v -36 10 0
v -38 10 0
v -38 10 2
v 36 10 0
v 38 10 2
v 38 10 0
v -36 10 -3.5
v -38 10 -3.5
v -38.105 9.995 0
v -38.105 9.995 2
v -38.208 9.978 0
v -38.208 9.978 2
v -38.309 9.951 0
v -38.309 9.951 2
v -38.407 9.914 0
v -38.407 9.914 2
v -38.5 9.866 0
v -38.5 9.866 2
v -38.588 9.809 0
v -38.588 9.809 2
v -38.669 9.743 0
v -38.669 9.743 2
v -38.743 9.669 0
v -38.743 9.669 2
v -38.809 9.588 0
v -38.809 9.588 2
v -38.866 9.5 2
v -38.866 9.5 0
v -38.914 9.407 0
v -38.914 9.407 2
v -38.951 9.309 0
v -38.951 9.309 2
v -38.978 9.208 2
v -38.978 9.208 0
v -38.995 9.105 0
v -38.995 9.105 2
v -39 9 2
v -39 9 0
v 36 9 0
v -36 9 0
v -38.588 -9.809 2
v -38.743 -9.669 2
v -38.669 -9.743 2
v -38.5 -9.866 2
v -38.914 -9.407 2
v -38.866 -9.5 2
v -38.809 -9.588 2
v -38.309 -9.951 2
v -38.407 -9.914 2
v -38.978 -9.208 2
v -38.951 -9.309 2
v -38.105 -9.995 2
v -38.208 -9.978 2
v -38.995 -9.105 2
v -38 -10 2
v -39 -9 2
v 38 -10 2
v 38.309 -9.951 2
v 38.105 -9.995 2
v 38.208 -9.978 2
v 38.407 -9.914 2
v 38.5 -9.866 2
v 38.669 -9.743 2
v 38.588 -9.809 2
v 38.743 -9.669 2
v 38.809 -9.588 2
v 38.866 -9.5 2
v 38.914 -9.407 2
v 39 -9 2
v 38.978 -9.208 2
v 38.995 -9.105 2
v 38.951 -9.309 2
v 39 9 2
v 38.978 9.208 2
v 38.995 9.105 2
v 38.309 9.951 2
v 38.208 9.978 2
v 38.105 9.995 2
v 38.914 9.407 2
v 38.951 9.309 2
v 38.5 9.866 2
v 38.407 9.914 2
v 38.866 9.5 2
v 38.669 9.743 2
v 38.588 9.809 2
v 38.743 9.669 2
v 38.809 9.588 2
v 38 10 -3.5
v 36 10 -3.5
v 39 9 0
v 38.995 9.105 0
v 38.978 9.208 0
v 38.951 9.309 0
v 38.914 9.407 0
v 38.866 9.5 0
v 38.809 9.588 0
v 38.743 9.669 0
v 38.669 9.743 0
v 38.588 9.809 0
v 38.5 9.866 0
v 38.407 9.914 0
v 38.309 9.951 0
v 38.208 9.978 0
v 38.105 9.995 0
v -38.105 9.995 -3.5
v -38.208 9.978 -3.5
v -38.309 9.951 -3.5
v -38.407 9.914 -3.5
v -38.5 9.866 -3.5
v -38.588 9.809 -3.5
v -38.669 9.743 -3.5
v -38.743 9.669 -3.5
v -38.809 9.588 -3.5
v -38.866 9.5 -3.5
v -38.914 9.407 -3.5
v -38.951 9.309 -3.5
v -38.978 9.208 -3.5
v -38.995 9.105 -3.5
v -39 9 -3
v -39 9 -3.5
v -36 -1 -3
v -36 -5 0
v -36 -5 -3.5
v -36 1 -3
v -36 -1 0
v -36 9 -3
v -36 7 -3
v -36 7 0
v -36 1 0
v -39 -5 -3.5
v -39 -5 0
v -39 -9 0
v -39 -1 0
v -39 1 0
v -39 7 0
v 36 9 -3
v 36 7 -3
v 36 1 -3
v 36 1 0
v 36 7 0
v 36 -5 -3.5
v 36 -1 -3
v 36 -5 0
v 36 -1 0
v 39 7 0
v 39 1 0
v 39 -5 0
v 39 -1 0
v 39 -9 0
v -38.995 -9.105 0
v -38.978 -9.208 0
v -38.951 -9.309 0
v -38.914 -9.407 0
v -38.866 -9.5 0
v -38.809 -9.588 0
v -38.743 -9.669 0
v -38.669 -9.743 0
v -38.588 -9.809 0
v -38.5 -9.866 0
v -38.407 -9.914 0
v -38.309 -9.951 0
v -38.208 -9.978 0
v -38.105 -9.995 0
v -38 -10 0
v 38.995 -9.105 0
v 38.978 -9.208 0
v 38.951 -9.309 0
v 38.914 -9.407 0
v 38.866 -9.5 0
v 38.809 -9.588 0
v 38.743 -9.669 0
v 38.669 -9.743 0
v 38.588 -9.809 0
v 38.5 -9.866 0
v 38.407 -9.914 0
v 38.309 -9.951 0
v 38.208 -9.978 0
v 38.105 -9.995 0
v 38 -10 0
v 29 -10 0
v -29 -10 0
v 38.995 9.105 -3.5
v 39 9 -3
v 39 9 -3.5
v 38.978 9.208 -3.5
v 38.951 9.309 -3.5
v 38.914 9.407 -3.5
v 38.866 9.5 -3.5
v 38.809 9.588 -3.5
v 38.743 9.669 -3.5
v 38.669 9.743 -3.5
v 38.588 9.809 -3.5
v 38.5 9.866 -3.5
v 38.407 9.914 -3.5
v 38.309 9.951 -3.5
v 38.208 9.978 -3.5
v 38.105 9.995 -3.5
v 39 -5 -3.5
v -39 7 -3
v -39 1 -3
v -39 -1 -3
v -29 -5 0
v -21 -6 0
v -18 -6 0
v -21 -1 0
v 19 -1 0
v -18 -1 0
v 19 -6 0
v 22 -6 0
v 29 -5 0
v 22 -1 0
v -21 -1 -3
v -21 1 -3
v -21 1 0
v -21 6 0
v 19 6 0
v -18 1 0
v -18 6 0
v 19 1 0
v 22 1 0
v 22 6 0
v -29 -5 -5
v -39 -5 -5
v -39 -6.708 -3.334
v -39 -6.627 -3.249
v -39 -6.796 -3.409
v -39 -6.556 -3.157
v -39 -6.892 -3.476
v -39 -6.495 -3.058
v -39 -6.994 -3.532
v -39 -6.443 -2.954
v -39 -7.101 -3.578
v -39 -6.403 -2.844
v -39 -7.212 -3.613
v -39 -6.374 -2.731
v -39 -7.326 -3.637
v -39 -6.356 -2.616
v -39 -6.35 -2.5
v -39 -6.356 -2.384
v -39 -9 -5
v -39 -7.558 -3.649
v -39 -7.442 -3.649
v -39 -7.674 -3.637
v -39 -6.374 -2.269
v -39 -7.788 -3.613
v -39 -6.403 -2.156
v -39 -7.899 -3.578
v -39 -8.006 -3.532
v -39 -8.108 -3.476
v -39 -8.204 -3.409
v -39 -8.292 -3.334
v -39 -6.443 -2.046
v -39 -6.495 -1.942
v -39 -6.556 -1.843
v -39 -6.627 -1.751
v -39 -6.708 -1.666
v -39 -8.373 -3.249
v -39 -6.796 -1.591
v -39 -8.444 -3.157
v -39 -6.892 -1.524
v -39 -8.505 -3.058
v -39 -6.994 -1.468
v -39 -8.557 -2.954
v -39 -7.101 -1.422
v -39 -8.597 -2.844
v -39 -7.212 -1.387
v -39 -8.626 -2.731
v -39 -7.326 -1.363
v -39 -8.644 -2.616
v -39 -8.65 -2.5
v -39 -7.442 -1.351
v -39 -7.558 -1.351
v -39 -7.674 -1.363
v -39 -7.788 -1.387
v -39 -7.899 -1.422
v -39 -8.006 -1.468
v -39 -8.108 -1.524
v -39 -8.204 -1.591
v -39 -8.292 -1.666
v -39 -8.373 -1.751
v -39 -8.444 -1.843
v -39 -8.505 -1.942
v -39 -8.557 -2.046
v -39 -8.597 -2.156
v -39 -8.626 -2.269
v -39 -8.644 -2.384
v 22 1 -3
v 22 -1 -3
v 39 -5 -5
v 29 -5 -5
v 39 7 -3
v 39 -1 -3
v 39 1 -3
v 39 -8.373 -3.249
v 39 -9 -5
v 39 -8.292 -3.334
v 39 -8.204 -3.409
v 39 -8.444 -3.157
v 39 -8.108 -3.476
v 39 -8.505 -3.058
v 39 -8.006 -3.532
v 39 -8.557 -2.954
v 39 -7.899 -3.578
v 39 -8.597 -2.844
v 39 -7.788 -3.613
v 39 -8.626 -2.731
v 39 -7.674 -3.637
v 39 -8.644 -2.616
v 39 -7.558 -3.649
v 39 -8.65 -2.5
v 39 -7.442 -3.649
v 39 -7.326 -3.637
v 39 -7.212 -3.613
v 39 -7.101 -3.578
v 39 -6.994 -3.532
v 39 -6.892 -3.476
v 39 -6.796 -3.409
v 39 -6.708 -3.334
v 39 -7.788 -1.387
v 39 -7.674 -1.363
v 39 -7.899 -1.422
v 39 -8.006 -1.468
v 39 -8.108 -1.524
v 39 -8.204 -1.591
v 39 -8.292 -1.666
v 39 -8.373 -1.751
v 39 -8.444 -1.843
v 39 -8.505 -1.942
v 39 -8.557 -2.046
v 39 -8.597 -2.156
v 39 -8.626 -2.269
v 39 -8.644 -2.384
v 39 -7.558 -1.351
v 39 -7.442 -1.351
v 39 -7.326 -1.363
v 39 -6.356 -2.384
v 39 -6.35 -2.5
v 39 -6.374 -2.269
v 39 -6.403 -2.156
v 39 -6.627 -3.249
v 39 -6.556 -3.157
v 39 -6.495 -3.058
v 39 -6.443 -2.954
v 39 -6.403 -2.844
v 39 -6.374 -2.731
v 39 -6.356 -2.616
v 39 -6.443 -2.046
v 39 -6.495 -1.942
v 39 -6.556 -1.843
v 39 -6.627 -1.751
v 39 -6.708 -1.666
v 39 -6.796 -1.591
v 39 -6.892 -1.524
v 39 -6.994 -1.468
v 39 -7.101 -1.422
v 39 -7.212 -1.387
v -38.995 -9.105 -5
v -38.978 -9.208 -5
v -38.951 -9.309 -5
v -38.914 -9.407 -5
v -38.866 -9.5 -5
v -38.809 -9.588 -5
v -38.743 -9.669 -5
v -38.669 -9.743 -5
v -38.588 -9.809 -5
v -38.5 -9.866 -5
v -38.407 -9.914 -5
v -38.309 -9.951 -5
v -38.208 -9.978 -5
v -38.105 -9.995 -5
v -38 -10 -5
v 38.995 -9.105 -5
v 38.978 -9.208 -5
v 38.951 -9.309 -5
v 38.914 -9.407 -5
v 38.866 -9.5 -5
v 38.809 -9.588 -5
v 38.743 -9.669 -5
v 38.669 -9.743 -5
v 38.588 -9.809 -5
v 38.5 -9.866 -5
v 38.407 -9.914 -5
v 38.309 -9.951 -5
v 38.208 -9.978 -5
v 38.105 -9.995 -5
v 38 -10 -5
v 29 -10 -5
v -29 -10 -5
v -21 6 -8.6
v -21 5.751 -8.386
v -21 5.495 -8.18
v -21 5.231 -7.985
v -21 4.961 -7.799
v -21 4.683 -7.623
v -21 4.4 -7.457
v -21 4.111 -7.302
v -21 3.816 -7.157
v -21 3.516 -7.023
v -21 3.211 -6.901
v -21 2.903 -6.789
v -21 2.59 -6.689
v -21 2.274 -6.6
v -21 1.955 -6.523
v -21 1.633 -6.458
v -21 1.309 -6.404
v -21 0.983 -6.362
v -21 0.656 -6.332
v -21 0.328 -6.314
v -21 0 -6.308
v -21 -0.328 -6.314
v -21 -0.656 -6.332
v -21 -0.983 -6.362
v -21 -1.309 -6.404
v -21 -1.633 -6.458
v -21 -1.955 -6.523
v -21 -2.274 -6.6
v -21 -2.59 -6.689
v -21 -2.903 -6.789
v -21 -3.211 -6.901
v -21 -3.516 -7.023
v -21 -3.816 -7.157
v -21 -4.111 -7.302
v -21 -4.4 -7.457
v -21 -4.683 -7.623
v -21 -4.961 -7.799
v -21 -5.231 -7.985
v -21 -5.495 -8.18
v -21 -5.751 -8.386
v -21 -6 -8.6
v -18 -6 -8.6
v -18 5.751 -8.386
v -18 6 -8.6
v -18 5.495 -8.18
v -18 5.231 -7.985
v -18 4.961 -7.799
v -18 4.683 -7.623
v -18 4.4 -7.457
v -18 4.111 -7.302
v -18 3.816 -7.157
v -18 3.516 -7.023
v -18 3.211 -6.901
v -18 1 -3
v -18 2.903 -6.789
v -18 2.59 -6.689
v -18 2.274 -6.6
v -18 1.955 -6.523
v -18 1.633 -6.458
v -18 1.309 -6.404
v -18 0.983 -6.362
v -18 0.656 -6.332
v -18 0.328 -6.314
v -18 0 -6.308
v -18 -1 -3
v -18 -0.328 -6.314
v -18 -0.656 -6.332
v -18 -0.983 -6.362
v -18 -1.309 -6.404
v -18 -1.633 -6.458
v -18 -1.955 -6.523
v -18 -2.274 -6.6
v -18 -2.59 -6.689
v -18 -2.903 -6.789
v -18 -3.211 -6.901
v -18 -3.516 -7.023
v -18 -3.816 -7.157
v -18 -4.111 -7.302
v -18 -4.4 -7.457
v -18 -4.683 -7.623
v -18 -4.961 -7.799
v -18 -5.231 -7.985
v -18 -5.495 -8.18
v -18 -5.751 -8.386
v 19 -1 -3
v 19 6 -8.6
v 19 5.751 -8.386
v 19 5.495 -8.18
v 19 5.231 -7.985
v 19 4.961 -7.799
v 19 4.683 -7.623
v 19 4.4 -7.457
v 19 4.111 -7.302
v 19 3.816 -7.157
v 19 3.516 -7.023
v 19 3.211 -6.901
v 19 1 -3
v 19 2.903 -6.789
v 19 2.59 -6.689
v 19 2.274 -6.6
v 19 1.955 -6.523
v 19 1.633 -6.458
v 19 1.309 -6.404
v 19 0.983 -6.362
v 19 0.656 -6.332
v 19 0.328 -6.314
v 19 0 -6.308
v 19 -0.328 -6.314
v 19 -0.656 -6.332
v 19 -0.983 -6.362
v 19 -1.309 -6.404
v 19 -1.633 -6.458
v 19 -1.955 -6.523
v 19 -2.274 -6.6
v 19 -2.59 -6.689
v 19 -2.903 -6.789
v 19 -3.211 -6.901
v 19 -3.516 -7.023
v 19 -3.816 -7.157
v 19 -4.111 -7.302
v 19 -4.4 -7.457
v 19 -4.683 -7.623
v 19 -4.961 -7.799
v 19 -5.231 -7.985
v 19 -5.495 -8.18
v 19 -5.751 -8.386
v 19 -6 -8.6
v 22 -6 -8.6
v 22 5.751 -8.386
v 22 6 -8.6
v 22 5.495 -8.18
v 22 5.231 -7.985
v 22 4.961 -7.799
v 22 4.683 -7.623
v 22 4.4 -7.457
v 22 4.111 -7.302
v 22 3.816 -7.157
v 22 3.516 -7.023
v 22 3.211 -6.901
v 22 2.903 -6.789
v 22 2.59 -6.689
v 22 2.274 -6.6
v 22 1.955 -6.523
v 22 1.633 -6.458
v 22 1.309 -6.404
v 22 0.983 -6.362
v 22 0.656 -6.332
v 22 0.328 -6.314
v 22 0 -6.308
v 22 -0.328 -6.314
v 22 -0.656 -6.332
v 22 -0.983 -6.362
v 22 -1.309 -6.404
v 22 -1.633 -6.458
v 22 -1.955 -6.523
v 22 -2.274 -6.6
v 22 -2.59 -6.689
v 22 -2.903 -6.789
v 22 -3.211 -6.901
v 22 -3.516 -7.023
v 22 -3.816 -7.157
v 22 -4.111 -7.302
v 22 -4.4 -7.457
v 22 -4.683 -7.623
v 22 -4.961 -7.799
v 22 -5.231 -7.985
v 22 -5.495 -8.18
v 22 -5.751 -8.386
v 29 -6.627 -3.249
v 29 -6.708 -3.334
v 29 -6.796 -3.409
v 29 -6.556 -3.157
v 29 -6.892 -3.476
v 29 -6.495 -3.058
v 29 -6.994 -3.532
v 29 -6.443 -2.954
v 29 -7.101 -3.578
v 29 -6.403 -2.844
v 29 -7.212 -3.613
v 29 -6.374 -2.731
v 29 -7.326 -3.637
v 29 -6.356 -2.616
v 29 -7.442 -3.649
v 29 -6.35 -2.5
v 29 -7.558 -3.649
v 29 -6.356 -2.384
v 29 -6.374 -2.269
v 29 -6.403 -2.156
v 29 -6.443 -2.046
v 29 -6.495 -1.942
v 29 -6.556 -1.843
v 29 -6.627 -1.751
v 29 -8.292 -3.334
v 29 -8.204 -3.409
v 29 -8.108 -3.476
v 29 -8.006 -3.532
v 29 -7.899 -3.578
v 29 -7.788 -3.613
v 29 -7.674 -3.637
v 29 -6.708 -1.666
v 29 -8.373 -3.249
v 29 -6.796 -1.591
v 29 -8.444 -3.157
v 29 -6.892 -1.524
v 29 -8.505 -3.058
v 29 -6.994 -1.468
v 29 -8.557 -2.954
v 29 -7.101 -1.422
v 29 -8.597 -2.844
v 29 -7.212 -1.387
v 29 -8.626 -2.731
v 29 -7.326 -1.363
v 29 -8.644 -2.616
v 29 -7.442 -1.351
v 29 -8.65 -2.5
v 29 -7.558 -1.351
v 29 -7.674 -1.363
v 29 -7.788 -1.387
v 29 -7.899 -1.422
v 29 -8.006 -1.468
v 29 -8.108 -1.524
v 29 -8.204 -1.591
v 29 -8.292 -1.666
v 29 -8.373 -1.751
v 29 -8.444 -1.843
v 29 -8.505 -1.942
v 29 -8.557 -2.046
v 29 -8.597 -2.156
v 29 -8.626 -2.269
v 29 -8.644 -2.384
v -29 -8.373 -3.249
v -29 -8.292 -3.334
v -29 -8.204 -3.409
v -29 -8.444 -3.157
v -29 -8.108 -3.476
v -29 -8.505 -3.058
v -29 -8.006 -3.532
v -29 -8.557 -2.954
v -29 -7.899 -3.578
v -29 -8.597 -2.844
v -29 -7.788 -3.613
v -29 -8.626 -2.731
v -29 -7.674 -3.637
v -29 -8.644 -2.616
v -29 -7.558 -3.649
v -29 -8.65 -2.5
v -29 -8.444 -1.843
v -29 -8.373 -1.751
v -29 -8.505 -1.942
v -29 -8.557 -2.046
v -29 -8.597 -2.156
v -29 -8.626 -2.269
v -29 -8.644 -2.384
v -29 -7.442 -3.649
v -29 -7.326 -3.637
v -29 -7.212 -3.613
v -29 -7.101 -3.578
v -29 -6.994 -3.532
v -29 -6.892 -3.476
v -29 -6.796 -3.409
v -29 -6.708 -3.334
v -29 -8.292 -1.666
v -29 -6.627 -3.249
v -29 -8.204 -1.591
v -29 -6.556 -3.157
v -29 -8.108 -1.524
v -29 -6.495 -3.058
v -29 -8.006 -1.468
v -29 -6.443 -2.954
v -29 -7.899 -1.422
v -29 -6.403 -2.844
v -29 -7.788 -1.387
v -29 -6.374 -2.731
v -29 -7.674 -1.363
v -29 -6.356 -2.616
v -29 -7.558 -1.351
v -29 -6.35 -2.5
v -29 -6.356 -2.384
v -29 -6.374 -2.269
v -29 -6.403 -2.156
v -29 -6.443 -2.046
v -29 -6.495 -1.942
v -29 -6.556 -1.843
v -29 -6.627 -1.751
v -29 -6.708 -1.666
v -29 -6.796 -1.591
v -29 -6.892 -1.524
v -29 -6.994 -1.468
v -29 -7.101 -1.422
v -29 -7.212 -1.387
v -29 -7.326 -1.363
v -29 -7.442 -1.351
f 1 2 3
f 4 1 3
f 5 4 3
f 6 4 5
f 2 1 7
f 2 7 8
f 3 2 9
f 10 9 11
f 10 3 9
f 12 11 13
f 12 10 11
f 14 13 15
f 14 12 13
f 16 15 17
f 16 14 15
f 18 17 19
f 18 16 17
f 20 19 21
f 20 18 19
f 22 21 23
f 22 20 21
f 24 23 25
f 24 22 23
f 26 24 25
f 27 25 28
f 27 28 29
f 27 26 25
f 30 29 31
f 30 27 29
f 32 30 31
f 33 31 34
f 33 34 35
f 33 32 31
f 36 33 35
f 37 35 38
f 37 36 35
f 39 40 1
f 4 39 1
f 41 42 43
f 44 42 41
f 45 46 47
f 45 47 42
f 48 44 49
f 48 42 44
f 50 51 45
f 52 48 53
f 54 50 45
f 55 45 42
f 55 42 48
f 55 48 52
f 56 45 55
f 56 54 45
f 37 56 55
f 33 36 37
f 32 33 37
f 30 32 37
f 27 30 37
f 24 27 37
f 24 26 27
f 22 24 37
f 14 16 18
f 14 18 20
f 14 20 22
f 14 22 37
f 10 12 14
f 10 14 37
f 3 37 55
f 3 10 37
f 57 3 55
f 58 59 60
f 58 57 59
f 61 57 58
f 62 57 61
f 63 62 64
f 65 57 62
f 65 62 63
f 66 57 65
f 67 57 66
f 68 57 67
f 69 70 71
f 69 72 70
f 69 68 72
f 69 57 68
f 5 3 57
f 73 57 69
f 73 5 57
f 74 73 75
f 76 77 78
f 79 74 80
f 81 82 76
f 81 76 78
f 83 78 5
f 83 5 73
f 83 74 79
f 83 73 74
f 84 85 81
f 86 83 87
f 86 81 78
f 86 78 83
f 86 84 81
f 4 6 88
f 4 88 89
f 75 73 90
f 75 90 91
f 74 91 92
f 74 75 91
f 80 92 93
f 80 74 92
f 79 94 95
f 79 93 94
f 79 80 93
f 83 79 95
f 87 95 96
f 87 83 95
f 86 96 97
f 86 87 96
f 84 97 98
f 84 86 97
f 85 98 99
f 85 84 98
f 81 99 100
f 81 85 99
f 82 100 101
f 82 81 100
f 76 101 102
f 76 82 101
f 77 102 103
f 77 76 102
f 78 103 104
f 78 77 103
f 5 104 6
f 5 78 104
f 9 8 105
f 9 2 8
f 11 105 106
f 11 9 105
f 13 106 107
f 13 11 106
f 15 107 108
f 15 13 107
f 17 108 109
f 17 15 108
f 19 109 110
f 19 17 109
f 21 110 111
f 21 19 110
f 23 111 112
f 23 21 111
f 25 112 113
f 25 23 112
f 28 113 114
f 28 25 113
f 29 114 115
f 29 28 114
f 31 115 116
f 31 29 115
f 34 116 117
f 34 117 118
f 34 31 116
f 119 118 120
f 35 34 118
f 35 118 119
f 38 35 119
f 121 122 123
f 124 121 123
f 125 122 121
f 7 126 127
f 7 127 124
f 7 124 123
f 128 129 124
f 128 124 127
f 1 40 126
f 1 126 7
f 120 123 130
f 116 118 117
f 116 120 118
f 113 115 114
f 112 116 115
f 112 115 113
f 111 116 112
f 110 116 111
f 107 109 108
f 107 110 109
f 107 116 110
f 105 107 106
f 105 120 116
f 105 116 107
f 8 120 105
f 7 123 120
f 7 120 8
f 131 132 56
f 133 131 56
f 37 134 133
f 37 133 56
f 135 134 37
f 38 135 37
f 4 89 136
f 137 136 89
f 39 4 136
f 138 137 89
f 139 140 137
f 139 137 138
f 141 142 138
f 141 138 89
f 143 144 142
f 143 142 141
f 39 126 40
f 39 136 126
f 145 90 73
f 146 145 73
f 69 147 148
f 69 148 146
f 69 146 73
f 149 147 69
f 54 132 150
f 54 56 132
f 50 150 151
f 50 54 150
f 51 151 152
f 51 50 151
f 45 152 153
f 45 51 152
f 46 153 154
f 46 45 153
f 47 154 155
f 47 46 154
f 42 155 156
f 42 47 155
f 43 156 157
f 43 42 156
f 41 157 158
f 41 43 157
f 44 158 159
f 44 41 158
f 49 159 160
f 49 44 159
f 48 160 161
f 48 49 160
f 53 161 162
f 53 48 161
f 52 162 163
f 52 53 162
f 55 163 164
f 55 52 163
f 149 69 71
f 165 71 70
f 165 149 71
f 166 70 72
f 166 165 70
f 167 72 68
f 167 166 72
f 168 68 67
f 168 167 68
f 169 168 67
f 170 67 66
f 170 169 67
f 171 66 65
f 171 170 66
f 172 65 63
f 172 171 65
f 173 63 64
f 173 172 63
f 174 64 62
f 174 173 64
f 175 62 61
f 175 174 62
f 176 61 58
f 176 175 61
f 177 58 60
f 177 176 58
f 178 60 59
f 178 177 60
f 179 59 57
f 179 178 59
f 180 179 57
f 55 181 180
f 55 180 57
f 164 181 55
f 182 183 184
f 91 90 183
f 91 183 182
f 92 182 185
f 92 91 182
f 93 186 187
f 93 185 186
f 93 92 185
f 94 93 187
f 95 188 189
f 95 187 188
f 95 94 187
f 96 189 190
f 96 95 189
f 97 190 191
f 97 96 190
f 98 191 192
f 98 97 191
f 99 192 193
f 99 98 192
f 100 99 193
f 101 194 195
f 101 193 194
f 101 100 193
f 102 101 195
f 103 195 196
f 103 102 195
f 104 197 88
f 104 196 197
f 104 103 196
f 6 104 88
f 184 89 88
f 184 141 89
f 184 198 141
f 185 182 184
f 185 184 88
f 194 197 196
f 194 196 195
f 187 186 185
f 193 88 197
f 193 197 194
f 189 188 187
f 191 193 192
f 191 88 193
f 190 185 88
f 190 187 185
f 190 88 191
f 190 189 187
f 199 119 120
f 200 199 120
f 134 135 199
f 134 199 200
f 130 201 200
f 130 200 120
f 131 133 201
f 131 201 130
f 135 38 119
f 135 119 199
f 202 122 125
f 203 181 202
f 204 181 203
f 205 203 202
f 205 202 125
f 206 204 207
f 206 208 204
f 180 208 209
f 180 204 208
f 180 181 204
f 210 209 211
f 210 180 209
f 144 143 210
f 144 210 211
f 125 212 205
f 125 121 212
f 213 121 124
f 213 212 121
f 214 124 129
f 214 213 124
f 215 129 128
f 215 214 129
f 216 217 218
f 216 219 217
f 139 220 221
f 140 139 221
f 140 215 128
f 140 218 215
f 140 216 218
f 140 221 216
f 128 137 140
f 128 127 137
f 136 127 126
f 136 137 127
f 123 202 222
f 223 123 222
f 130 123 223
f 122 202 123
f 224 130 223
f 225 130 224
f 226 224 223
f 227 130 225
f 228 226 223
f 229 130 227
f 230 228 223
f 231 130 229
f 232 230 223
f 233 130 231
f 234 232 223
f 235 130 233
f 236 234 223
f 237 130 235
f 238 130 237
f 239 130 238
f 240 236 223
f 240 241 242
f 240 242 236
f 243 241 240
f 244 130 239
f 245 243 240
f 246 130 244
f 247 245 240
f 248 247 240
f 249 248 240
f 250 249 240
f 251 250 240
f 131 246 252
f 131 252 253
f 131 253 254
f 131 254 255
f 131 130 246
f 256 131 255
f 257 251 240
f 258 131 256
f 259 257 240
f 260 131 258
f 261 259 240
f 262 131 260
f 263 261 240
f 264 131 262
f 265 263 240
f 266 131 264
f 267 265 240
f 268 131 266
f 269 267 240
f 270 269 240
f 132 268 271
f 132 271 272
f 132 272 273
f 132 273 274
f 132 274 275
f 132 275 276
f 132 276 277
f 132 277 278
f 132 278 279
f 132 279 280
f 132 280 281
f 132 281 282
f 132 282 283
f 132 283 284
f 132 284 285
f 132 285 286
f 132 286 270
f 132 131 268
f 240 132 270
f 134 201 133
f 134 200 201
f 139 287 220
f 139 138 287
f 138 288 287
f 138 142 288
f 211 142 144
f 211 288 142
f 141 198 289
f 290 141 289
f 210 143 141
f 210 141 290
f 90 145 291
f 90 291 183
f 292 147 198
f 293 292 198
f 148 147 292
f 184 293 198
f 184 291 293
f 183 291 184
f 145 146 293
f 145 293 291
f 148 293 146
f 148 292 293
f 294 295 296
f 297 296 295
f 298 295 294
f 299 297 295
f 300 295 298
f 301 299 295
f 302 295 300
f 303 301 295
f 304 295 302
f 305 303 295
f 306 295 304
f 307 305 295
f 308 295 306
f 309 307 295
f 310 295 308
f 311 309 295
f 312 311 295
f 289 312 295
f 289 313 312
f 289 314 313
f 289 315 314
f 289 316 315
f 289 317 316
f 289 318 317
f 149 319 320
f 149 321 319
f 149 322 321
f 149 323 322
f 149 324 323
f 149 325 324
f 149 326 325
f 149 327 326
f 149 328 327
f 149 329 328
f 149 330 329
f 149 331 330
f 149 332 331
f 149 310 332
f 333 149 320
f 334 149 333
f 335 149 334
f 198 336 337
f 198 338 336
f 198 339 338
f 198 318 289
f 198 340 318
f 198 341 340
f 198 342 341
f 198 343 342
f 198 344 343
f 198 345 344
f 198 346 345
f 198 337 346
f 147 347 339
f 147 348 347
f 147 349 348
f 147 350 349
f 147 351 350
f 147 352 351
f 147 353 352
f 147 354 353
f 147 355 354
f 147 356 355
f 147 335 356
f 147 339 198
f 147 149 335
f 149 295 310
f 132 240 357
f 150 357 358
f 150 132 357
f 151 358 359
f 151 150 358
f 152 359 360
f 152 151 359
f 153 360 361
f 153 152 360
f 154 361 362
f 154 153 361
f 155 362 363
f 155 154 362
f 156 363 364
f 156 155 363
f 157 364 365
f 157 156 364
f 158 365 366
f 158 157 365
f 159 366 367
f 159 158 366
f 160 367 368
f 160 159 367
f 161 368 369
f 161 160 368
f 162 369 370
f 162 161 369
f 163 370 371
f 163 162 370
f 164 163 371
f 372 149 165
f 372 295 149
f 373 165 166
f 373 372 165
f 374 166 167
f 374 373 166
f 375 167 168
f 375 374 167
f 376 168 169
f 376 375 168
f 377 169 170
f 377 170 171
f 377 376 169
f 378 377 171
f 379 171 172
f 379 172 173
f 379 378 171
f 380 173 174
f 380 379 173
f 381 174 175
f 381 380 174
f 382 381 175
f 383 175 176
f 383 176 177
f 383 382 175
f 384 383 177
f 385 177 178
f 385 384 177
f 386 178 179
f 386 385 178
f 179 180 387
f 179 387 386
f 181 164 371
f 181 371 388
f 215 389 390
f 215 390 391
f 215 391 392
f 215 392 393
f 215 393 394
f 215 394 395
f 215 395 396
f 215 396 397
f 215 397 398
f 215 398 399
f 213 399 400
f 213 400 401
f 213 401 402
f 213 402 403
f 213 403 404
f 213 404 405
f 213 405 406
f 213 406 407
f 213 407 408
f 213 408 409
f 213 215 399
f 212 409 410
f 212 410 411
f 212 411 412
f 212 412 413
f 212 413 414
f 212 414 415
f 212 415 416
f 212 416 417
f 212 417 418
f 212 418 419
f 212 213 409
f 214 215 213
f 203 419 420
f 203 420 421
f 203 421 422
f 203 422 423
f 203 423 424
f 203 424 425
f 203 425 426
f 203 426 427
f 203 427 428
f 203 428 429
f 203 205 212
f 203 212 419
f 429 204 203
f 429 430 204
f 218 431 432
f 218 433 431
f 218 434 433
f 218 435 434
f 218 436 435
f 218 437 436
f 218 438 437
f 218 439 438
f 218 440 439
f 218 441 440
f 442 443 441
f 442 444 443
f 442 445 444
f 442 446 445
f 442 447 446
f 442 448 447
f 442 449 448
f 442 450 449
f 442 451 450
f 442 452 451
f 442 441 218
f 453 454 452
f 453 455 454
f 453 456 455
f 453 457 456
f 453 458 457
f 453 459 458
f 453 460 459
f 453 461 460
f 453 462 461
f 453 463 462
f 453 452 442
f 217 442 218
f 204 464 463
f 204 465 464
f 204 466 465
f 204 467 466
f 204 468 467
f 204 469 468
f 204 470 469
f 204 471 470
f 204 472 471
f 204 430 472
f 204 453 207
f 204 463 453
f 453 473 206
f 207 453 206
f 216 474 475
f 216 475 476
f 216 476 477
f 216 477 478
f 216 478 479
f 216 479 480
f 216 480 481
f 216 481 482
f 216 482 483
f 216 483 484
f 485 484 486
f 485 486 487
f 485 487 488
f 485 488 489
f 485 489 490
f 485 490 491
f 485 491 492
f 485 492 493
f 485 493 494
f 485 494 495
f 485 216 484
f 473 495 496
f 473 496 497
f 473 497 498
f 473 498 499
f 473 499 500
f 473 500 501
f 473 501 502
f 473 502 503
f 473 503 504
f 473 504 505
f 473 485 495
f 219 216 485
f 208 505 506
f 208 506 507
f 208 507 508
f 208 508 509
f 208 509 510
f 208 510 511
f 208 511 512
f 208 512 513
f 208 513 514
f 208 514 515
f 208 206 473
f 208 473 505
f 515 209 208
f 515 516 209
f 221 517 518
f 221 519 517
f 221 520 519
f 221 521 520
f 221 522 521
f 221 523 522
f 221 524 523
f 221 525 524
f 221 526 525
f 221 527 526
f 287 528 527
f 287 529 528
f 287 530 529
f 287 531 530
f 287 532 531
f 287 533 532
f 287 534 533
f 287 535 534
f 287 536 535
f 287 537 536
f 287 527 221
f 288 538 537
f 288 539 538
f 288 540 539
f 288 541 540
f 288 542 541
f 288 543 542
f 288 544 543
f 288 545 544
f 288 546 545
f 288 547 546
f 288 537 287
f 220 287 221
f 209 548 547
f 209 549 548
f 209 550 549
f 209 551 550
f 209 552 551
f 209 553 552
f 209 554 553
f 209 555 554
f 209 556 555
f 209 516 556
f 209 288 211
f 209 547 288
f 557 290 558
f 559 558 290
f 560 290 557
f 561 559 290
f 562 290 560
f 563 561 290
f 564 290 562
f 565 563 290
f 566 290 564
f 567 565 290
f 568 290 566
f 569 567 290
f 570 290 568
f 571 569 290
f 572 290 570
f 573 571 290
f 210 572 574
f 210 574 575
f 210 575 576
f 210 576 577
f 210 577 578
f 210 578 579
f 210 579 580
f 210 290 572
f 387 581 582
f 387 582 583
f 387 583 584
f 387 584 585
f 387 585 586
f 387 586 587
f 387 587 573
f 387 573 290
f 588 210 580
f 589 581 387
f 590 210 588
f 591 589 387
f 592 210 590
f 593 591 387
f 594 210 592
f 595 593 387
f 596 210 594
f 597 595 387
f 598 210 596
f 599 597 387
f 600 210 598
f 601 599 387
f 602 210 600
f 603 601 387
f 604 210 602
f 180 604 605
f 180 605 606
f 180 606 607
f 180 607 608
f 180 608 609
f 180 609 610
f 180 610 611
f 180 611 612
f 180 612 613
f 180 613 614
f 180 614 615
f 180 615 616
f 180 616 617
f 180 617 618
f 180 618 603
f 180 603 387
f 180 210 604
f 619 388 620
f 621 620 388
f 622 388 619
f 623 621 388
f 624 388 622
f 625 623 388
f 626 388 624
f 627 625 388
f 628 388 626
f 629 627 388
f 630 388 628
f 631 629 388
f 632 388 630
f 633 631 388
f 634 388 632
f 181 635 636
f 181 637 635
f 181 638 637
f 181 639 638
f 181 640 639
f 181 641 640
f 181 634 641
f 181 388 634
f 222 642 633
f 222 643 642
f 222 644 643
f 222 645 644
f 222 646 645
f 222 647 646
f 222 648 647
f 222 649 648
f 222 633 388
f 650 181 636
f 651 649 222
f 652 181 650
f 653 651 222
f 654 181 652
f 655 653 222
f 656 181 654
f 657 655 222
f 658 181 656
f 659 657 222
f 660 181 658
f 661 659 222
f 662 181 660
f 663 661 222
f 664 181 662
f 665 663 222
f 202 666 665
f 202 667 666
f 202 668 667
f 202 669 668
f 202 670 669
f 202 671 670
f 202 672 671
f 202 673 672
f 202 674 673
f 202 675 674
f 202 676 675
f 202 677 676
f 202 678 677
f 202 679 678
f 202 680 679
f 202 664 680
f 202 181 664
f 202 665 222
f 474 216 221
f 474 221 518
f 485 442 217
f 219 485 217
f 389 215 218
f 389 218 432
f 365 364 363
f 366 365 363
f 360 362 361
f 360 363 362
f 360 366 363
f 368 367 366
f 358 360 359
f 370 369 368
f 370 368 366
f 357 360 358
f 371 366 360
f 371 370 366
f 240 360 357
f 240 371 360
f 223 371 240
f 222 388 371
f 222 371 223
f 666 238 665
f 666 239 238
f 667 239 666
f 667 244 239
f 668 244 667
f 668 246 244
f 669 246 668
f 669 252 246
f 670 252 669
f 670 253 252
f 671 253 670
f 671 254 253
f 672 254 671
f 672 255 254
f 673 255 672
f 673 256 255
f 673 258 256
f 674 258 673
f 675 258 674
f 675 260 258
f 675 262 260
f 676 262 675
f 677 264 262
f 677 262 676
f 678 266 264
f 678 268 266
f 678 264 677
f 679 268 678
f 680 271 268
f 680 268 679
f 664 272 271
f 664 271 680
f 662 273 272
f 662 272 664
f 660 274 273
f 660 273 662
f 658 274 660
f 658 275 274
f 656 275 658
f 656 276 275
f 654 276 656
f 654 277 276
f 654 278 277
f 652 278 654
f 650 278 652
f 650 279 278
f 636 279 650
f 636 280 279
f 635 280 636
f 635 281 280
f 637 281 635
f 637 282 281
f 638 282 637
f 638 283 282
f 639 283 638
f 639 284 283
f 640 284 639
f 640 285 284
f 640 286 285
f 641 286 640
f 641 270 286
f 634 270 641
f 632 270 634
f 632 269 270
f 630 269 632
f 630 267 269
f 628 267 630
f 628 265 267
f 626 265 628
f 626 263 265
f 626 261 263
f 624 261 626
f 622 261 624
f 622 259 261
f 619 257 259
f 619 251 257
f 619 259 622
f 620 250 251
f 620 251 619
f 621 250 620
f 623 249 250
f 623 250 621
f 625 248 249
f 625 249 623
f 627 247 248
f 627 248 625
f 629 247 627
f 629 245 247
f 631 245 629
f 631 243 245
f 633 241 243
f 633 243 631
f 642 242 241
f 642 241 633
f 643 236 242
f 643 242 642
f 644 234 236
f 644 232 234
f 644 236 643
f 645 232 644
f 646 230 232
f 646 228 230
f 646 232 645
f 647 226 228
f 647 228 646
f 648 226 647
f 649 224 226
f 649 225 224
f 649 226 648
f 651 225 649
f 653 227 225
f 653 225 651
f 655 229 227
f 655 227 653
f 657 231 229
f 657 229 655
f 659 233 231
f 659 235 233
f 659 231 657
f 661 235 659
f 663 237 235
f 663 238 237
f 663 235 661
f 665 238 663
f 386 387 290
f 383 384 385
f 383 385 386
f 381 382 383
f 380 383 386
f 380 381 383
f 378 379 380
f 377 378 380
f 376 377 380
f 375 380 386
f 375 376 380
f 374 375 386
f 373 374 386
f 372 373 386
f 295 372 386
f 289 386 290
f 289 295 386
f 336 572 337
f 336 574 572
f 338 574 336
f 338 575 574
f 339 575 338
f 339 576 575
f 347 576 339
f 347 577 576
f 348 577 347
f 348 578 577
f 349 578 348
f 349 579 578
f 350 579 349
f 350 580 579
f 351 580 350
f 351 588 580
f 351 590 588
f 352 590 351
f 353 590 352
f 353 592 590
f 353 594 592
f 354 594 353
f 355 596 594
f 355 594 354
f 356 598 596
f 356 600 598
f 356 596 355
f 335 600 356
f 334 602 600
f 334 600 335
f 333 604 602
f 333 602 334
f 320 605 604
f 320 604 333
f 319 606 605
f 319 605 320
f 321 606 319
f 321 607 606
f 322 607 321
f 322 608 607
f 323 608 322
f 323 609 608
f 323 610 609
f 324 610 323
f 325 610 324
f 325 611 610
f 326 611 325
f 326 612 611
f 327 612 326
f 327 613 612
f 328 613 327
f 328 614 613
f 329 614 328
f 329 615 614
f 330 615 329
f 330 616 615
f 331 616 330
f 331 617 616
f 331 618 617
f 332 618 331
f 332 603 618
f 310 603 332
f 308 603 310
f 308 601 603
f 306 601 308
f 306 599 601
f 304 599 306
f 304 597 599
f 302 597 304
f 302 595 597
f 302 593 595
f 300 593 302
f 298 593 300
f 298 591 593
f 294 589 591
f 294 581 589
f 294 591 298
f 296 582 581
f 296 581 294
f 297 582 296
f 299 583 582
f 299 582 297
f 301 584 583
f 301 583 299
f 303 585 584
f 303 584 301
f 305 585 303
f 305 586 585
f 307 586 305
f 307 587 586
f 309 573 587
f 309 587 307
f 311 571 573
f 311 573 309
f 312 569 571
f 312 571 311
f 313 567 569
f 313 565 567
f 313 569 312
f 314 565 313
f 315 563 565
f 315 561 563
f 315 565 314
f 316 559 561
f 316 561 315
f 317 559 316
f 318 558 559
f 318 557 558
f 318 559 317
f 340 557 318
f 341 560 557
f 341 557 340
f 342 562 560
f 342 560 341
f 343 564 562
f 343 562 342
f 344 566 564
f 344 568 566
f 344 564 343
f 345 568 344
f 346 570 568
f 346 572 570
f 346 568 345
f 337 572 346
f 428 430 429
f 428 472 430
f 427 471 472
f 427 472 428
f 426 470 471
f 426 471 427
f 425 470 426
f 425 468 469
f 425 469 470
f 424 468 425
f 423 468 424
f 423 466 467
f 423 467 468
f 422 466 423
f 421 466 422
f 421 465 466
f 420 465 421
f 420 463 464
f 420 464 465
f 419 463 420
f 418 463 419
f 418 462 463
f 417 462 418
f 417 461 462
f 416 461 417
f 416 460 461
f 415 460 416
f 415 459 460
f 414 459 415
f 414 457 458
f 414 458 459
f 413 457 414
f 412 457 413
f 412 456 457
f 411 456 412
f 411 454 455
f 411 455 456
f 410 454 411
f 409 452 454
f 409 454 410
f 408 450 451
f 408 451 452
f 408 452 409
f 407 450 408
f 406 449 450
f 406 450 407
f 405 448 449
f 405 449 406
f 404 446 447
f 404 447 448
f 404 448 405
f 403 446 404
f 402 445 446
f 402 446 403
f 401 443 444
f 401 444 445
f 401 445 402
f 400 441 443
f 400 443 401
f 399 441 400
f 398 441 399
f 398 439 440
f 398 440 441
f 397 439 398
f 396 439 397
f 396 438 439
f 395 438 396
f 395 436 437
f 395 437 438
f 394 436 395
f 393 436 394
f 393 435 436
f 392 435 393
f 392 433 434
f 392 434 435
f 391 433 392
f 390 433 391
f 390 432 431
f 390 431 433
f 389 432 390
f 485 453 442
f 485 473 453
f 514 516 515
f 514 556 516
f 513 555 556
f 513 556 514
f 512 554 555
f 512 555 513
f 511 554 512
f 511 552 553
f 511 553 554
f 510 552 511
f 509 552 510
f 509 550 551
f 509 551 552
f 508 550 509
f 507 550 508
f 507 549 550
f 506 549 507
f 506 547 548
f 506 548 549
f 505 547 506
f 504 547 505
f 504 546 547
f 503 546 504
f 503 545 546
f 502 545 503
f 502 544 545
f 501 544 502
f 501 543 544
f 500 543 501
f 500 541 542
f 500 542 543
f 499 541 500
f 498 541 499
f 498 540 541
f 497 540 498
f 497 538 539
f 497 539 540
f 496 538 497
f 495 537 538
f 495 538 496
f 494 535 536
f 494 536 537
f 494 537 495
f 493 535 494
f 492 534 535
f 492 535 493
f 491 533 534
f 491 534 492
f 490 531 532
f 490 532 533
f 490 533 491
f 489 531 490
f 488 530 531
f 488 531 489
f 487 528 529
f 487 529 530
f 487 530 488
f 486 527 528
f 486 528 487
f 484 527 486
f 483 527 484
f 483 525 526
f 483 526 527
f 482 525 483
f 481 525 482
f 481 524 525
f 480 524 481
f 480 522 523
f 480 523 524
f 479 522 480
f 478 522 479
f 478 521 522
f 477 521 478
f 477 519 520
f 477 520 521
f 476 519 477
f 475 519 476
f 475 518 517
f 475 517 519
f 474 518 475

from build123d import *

# Parameters (mm, degrees)
SKETCH_W     = 78
SKETCH_H     = 20
PAD_DEPTH    = 2
SKETCH001_W  = 10
SKETCH001_H  = 5
PAD001_DEPTH = 5
SKETCH002_R  = 1.15
POCKET_DEPTH = 78.001
SKETCH003_W  = 3
SKETCH003_H  = 15
PAD002_DEPTH = 3.5
PAD003_DEPTH = 3
PAD004_DEPTH = 3
FILLET_R     = 1
SKETCH006_W  = 78
SKETCH006_H  = 2
PAD005_DEPTH = 3


with BuildPart() as part:
    # Sketch → Pad (new body)
    with BuildSketch(Plane.XY):
        Rectangle(SKETCH_W, SKETCH_H)
    extrude(amount=PAD_DEPTH)

    # Sketch001 (on Face5 of Pad) → Pad001 (join)
    with BuildSketch(Plane(origin=(0, 0, 0), x_dir=(1, 0, 0), z_dir=(0, 0, -1))):
        with Locations((34, 7.5)):
            Rectangle(SKETCH001_W, SKETCH001_H)
        with Locations((-34, 7.5)):
            Rectangle(SKETCH001_W, SKETCH001_H)
    extrude(amount=PAD001_DEPTH)

    # Sketch002 (on Face8 of Pad001) → Pocket (cut, through all)
    with BuildSketch(Plane.YZ.offset(39)):
        with Locations((-7.5, -2.5)):
            Circle(SKETCH002_R)
    extrude(amount=-POCKET_DEPTH, mode=Mode.SUBTRACT)

    # Sketch003 (on Face4 of Pocket) → Pad002 (join)
    with BuildSketch(Plane(origin=(0, 0, 0), x_dir=(1, 0, 0), z_dir=(0, 0, -1))):
        with Locations((37.5, -2.5)):
            Rectangle(SKETCH003_W, SKETCH003_H)
        with Locations((-37.5, -2.5)):
            Rectangle(SKETCH003_W, SKETCH003_H)
    extrude(amount=PAD002_DEPTH)

    # Sketch004 (on Face3 of Pad002) → Pad003 (join)
    with BuildSketch(Plane.YZ.offset(-21)):
        with BuildLine():
            Line((-6, 0), (6, 0))
            Line((6, 0), (6, -8.6))
            ThreePointArc((6, -8.6), (0, -6.308204), (-6, -8.6))
            Line((-6, 0), (-6, -8.6))
        make_face()
    extrude(amount=PAD003_DEPTH)

    # Sketch005 (on Face3 of Pad002) → Pad004 (join)
    with BuildSketch(Plane.YZ.offset(19)):
        with BuildLine():
            Line((-6, 0), (6, 0))
            Line((6, 0), (6, -8.6))
            ThreePointArc((6, -8.6), (0, -6.308204), (-6, -8.6))
            Line((-6, 0), (-6, -8.6))
        make_face()
    extrude(amount=PAD004_DEPTH)

    # Fillet
    fillet_edges = [part.edges().sort_by_distance(p)[0] for p in [
        (39, 10, 1),
        (39, 10, -1.75),
        (39, -10, -2.5),
        (39, -10, 1),
        (-39, -10, 1),
        (-39, -10, -2.5),
        (-39, 10, 1),
        (-39, 10, -1.75),
    ]]
    fillet(fillet_edges, radius=FILLET_R)

    # Sketch006 (on Face4 of Fillet) → Pad005 (join)
    with BuildSketch(Plane(origin=(0, 0, 0), x_dir=(1, 0, 0), z_dir=(0, 0, -1))):
        Rectangle(SKETCH006_W, SKETCH006_H)
        with Locations((0, -8)):
            Rectangle(SKETCH006_W, SKETCH006_H)
    extrude(amount=PAD005_DEPTH)


solid = part.part
